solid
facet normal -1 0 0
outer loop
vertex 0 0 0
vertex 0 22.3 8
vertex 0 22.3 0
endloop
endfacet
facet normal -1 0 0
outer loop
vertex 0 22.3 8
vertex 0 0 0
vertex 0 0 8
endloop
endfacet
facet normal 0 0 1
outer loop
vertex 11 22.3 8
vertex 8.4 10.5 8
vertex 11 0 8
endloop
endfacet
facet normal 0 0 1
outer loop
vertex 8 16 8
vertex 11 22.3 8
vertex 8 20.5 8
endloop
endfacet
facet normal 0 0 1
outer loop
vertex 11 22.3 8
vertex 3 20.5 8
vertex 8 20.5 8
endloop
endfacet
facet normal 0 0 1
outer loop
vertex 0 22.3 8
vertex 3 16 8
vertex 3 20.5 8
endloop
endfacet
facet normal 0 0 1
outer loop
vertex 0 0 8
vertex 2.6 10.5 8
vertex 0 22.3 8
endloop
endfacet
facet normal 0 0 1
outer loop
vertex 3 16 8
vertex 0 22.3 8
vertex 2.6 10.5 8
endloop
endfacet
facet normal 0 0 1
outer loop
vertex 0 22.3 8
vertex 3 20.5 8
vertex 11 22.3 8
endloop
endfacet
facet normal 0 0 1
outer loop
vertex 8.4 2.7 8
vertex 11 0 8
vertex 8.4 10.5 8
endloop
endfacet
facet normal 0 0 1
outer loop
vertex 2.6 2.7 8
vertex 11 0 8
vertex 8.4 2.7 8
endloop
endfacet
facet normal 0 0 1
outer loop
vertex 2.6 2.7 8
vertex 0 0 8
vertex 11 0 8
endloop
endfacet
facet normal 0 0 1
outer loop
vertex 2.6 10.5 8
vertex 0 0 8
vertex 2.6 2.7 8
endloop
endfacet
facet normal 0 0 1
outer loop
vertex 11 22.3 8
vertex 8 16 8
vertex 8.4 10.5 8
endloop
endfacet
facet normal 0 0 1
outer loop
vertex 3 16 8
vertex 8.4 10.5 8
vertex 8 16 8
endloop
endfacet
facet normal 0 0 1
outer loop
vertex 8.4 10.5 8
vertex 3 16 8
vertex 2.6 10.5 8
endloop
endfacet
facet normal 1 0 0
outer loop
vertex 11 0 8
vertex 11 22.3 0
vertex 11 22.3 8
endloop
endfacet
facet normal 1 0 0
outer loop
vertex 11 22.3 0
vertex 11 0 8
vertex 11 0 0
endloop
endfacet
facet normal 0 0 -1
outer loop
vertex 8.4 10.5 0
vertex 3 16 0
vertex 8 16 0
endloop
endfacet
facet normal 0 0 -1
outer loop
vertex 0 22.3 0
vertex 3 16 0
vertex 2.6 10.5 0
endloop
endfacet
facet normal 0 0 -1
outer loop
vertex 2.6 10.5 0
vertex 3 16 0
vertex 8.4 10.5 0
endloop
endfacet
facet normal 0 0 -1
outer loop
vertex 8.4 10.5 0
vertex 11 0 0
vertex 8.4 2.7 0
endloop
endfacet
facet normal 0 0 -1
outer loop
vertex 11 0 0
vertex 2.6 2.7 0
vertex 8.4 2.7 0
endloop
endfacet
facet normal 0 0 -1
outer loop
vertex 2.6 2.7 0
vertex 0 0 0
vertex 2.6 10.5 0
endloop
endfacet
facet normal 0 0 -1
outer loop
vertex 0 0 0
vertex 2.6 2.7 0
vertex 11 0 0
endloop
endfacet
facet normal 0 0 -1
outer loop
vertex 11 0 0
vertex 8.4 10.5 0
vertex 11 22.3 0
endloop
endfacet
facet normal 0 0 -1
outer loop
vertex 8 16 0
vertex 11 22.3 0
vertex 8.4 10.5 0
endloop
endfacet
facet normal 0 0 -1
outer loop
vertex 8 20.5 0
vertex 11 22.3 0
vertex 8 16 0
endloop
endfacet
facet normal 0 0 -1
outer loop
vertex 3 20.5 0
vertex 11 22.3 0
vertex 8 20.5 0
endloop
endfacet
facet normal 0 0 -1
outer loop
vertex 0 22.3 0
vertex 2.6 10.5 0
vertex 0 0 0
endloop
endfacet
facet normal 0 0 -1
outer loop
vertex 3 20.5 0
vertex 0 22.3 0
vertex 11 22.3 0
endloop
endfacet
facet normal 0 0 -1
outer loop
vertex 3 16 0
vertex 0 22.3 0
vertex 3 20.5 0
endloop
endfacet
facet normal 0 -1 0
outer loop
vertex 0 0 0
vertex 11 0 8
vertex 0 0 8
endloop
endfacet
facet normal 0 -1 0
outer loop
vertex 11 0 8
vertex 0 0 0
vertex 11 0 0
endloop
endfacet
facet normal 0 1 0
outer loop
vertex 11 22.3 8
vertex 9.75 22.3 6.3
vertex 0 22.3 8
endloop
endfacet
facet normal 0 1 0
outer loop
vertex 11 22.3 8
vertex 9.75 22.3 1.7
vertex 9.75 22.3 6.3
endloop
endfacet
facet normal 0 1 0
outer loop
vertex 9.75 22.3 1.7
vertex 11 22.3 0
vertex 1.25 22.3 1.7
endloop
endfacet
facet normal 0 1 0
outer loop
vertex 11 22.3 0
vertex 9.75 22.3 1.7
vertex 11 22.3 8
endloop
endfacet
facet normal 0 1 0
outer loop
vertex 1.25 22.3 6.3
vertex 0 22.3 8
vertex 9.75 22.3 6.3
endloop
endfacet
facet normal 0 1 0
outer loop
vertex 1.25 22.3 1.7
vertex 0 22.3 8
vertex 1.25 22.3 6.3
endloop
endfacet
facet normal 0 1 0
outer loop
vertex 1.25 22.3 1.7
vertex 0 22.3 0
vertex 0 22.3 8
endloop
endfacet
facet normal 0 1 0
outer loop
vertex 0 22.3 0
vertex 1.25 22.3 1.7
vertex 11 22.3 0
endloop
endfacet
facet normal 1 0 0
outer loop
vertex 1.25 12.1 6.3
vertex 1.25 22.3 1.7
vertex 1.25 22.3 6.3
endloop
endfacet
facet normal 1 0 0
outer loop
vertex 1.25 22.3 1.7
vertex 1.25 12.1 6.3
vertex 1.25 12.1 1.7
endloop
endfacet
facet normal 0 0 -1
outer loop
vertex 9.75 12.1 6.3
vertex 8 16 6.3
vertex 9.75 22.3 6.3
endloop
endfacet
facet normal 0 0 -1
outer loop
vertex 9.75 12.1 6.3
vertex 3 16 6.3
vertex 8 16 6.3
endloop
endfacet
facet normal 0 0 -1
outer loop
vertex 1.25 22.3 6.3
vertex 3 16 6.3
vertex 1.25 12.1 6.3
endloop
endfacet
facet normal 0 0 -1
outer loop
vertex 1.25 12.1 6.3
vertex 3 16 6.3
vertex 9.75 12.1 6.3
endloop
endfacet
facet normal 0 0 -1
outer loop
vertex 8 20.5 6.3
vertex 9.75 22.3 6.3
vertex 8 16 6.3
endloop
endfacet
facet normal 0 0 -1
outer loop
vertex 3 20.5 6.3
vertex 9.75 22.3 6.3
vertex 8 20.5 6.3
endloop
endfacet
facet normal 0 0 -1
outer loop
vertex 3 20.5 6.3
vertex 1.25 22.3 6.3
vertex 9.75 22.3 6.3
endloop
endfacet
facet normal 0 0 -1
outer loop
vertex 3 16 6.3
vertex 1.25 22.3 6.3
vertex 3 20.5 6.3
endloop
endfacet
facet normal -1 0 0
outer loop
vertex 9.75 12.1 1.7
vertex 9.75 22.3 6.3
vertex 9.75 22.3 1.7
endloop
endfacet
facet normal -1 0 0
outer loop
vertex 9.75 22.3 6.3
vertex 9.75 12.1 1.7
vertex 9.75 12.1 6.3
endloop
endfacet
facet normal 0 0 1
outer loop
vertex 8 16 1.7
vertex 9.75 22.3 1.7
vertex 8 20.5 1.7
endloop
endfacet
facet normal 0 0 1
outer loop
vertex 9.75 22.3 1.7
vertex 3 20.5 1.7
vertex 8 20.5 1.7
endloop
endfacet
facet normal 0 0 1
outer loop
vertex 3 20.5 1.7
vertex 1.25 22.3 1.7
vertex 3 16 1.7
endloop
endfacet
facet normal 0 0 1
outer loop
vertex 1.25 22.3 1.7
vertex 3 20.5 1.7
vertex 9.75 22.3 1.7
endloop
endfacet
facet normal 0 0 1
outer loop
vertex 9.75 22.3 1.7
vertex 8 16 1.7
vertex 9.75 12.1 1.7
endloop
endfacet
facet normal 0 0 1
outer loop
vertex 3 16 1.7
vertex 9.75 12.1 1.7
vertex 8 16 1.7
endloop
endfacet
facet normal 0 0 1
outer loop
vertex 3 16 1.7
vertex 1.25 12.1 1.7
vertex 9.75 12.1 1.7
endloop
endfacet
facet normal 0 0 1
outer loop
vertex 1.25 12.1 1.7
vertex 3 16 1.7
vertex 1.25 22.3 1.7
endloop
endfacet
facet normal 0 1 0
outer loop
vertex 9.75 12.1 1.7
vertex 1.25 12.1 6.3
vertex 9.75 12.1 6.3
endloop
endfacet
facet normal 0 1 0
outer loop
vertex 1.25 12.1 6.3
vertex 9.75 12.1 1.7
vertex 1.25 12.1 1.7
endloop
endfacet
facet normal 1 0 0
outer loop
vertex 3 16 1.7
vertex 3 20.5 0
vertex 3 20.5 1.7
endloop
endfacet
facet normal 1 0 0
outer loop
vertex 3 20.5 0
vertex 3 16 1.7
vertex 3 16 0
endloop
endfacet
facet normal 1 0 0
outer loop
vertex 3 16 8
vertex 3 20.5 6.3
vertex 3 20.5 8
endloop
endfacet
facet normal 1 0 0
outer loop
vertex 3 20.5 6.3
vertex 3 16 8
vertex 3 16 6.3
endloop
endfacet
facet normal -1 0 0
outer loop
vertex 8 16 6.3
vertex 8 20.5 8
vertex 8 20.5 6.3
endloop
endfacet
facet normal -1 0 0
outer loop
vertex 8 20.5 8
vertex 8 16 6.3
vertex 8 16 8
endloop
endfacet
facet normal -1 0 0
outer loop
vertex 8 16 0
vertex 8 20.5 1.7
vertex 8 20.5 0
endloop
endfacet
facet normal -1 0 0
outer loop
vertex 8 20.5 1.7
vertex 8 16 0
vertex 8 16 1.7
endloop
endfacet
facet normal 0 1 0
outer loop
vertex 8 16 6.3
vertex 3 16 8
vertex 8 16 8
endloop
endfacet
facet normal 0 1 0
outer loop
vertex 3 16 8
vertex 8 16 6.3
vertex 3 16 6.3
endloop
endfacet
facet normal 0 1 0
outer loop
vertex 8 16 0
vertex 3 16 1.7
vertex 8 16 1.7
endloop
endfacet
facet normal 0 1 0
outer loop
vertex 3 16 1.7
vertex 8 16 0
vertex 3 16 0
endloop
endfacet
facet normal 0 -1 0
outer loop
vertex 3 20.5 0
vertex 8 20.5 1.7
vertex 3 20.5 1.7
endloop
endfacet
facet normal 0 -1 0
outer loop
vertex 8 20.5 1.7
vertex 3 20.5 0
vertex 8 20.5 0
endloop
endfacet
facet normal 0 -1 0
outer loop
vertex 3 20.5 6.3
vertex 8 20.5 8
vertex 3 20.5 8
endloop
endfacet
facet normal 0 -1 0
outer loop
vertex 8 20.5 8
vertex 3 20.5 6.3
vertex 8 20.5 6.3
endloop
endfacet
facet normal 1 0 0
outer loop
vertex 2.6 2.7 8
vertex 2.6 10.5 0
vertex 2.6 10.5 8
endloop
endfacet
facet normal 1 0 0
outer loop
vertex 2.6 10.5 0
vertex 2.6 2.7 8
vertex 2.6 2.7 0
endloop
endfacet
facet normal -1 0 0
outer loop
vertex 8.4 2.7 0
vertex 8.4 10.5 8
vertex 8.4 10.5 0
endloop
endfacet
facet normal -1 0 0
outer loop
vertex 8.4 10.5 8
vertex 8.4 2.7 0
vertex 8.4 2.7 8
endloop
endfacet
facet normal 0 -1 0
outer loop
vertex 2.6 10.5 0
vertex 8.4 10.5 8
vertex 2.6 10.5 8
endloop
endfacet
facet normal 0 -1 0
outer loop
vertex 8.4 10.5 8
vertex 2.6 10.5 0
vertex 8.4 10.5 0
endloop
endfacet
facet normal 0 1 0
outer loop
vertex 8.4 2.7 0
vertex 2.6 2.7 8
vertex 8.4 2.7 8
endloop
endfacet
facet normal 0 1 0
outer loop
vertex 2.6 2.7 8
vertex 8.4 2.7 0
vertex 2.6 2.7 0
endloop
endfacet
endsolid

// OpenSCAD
difference() {
    cube([11,22.3,8]);
    translate([1.25,12.1,1.7]) {
        #cube([8.5,10.2,4.6]);
    }
    translate([3,16,0]) {
        cube([5,4.5,8]);
    }
    translate([2.6,2.7,0]) {
        cube([5.8,7.8,8]);
    }
}
